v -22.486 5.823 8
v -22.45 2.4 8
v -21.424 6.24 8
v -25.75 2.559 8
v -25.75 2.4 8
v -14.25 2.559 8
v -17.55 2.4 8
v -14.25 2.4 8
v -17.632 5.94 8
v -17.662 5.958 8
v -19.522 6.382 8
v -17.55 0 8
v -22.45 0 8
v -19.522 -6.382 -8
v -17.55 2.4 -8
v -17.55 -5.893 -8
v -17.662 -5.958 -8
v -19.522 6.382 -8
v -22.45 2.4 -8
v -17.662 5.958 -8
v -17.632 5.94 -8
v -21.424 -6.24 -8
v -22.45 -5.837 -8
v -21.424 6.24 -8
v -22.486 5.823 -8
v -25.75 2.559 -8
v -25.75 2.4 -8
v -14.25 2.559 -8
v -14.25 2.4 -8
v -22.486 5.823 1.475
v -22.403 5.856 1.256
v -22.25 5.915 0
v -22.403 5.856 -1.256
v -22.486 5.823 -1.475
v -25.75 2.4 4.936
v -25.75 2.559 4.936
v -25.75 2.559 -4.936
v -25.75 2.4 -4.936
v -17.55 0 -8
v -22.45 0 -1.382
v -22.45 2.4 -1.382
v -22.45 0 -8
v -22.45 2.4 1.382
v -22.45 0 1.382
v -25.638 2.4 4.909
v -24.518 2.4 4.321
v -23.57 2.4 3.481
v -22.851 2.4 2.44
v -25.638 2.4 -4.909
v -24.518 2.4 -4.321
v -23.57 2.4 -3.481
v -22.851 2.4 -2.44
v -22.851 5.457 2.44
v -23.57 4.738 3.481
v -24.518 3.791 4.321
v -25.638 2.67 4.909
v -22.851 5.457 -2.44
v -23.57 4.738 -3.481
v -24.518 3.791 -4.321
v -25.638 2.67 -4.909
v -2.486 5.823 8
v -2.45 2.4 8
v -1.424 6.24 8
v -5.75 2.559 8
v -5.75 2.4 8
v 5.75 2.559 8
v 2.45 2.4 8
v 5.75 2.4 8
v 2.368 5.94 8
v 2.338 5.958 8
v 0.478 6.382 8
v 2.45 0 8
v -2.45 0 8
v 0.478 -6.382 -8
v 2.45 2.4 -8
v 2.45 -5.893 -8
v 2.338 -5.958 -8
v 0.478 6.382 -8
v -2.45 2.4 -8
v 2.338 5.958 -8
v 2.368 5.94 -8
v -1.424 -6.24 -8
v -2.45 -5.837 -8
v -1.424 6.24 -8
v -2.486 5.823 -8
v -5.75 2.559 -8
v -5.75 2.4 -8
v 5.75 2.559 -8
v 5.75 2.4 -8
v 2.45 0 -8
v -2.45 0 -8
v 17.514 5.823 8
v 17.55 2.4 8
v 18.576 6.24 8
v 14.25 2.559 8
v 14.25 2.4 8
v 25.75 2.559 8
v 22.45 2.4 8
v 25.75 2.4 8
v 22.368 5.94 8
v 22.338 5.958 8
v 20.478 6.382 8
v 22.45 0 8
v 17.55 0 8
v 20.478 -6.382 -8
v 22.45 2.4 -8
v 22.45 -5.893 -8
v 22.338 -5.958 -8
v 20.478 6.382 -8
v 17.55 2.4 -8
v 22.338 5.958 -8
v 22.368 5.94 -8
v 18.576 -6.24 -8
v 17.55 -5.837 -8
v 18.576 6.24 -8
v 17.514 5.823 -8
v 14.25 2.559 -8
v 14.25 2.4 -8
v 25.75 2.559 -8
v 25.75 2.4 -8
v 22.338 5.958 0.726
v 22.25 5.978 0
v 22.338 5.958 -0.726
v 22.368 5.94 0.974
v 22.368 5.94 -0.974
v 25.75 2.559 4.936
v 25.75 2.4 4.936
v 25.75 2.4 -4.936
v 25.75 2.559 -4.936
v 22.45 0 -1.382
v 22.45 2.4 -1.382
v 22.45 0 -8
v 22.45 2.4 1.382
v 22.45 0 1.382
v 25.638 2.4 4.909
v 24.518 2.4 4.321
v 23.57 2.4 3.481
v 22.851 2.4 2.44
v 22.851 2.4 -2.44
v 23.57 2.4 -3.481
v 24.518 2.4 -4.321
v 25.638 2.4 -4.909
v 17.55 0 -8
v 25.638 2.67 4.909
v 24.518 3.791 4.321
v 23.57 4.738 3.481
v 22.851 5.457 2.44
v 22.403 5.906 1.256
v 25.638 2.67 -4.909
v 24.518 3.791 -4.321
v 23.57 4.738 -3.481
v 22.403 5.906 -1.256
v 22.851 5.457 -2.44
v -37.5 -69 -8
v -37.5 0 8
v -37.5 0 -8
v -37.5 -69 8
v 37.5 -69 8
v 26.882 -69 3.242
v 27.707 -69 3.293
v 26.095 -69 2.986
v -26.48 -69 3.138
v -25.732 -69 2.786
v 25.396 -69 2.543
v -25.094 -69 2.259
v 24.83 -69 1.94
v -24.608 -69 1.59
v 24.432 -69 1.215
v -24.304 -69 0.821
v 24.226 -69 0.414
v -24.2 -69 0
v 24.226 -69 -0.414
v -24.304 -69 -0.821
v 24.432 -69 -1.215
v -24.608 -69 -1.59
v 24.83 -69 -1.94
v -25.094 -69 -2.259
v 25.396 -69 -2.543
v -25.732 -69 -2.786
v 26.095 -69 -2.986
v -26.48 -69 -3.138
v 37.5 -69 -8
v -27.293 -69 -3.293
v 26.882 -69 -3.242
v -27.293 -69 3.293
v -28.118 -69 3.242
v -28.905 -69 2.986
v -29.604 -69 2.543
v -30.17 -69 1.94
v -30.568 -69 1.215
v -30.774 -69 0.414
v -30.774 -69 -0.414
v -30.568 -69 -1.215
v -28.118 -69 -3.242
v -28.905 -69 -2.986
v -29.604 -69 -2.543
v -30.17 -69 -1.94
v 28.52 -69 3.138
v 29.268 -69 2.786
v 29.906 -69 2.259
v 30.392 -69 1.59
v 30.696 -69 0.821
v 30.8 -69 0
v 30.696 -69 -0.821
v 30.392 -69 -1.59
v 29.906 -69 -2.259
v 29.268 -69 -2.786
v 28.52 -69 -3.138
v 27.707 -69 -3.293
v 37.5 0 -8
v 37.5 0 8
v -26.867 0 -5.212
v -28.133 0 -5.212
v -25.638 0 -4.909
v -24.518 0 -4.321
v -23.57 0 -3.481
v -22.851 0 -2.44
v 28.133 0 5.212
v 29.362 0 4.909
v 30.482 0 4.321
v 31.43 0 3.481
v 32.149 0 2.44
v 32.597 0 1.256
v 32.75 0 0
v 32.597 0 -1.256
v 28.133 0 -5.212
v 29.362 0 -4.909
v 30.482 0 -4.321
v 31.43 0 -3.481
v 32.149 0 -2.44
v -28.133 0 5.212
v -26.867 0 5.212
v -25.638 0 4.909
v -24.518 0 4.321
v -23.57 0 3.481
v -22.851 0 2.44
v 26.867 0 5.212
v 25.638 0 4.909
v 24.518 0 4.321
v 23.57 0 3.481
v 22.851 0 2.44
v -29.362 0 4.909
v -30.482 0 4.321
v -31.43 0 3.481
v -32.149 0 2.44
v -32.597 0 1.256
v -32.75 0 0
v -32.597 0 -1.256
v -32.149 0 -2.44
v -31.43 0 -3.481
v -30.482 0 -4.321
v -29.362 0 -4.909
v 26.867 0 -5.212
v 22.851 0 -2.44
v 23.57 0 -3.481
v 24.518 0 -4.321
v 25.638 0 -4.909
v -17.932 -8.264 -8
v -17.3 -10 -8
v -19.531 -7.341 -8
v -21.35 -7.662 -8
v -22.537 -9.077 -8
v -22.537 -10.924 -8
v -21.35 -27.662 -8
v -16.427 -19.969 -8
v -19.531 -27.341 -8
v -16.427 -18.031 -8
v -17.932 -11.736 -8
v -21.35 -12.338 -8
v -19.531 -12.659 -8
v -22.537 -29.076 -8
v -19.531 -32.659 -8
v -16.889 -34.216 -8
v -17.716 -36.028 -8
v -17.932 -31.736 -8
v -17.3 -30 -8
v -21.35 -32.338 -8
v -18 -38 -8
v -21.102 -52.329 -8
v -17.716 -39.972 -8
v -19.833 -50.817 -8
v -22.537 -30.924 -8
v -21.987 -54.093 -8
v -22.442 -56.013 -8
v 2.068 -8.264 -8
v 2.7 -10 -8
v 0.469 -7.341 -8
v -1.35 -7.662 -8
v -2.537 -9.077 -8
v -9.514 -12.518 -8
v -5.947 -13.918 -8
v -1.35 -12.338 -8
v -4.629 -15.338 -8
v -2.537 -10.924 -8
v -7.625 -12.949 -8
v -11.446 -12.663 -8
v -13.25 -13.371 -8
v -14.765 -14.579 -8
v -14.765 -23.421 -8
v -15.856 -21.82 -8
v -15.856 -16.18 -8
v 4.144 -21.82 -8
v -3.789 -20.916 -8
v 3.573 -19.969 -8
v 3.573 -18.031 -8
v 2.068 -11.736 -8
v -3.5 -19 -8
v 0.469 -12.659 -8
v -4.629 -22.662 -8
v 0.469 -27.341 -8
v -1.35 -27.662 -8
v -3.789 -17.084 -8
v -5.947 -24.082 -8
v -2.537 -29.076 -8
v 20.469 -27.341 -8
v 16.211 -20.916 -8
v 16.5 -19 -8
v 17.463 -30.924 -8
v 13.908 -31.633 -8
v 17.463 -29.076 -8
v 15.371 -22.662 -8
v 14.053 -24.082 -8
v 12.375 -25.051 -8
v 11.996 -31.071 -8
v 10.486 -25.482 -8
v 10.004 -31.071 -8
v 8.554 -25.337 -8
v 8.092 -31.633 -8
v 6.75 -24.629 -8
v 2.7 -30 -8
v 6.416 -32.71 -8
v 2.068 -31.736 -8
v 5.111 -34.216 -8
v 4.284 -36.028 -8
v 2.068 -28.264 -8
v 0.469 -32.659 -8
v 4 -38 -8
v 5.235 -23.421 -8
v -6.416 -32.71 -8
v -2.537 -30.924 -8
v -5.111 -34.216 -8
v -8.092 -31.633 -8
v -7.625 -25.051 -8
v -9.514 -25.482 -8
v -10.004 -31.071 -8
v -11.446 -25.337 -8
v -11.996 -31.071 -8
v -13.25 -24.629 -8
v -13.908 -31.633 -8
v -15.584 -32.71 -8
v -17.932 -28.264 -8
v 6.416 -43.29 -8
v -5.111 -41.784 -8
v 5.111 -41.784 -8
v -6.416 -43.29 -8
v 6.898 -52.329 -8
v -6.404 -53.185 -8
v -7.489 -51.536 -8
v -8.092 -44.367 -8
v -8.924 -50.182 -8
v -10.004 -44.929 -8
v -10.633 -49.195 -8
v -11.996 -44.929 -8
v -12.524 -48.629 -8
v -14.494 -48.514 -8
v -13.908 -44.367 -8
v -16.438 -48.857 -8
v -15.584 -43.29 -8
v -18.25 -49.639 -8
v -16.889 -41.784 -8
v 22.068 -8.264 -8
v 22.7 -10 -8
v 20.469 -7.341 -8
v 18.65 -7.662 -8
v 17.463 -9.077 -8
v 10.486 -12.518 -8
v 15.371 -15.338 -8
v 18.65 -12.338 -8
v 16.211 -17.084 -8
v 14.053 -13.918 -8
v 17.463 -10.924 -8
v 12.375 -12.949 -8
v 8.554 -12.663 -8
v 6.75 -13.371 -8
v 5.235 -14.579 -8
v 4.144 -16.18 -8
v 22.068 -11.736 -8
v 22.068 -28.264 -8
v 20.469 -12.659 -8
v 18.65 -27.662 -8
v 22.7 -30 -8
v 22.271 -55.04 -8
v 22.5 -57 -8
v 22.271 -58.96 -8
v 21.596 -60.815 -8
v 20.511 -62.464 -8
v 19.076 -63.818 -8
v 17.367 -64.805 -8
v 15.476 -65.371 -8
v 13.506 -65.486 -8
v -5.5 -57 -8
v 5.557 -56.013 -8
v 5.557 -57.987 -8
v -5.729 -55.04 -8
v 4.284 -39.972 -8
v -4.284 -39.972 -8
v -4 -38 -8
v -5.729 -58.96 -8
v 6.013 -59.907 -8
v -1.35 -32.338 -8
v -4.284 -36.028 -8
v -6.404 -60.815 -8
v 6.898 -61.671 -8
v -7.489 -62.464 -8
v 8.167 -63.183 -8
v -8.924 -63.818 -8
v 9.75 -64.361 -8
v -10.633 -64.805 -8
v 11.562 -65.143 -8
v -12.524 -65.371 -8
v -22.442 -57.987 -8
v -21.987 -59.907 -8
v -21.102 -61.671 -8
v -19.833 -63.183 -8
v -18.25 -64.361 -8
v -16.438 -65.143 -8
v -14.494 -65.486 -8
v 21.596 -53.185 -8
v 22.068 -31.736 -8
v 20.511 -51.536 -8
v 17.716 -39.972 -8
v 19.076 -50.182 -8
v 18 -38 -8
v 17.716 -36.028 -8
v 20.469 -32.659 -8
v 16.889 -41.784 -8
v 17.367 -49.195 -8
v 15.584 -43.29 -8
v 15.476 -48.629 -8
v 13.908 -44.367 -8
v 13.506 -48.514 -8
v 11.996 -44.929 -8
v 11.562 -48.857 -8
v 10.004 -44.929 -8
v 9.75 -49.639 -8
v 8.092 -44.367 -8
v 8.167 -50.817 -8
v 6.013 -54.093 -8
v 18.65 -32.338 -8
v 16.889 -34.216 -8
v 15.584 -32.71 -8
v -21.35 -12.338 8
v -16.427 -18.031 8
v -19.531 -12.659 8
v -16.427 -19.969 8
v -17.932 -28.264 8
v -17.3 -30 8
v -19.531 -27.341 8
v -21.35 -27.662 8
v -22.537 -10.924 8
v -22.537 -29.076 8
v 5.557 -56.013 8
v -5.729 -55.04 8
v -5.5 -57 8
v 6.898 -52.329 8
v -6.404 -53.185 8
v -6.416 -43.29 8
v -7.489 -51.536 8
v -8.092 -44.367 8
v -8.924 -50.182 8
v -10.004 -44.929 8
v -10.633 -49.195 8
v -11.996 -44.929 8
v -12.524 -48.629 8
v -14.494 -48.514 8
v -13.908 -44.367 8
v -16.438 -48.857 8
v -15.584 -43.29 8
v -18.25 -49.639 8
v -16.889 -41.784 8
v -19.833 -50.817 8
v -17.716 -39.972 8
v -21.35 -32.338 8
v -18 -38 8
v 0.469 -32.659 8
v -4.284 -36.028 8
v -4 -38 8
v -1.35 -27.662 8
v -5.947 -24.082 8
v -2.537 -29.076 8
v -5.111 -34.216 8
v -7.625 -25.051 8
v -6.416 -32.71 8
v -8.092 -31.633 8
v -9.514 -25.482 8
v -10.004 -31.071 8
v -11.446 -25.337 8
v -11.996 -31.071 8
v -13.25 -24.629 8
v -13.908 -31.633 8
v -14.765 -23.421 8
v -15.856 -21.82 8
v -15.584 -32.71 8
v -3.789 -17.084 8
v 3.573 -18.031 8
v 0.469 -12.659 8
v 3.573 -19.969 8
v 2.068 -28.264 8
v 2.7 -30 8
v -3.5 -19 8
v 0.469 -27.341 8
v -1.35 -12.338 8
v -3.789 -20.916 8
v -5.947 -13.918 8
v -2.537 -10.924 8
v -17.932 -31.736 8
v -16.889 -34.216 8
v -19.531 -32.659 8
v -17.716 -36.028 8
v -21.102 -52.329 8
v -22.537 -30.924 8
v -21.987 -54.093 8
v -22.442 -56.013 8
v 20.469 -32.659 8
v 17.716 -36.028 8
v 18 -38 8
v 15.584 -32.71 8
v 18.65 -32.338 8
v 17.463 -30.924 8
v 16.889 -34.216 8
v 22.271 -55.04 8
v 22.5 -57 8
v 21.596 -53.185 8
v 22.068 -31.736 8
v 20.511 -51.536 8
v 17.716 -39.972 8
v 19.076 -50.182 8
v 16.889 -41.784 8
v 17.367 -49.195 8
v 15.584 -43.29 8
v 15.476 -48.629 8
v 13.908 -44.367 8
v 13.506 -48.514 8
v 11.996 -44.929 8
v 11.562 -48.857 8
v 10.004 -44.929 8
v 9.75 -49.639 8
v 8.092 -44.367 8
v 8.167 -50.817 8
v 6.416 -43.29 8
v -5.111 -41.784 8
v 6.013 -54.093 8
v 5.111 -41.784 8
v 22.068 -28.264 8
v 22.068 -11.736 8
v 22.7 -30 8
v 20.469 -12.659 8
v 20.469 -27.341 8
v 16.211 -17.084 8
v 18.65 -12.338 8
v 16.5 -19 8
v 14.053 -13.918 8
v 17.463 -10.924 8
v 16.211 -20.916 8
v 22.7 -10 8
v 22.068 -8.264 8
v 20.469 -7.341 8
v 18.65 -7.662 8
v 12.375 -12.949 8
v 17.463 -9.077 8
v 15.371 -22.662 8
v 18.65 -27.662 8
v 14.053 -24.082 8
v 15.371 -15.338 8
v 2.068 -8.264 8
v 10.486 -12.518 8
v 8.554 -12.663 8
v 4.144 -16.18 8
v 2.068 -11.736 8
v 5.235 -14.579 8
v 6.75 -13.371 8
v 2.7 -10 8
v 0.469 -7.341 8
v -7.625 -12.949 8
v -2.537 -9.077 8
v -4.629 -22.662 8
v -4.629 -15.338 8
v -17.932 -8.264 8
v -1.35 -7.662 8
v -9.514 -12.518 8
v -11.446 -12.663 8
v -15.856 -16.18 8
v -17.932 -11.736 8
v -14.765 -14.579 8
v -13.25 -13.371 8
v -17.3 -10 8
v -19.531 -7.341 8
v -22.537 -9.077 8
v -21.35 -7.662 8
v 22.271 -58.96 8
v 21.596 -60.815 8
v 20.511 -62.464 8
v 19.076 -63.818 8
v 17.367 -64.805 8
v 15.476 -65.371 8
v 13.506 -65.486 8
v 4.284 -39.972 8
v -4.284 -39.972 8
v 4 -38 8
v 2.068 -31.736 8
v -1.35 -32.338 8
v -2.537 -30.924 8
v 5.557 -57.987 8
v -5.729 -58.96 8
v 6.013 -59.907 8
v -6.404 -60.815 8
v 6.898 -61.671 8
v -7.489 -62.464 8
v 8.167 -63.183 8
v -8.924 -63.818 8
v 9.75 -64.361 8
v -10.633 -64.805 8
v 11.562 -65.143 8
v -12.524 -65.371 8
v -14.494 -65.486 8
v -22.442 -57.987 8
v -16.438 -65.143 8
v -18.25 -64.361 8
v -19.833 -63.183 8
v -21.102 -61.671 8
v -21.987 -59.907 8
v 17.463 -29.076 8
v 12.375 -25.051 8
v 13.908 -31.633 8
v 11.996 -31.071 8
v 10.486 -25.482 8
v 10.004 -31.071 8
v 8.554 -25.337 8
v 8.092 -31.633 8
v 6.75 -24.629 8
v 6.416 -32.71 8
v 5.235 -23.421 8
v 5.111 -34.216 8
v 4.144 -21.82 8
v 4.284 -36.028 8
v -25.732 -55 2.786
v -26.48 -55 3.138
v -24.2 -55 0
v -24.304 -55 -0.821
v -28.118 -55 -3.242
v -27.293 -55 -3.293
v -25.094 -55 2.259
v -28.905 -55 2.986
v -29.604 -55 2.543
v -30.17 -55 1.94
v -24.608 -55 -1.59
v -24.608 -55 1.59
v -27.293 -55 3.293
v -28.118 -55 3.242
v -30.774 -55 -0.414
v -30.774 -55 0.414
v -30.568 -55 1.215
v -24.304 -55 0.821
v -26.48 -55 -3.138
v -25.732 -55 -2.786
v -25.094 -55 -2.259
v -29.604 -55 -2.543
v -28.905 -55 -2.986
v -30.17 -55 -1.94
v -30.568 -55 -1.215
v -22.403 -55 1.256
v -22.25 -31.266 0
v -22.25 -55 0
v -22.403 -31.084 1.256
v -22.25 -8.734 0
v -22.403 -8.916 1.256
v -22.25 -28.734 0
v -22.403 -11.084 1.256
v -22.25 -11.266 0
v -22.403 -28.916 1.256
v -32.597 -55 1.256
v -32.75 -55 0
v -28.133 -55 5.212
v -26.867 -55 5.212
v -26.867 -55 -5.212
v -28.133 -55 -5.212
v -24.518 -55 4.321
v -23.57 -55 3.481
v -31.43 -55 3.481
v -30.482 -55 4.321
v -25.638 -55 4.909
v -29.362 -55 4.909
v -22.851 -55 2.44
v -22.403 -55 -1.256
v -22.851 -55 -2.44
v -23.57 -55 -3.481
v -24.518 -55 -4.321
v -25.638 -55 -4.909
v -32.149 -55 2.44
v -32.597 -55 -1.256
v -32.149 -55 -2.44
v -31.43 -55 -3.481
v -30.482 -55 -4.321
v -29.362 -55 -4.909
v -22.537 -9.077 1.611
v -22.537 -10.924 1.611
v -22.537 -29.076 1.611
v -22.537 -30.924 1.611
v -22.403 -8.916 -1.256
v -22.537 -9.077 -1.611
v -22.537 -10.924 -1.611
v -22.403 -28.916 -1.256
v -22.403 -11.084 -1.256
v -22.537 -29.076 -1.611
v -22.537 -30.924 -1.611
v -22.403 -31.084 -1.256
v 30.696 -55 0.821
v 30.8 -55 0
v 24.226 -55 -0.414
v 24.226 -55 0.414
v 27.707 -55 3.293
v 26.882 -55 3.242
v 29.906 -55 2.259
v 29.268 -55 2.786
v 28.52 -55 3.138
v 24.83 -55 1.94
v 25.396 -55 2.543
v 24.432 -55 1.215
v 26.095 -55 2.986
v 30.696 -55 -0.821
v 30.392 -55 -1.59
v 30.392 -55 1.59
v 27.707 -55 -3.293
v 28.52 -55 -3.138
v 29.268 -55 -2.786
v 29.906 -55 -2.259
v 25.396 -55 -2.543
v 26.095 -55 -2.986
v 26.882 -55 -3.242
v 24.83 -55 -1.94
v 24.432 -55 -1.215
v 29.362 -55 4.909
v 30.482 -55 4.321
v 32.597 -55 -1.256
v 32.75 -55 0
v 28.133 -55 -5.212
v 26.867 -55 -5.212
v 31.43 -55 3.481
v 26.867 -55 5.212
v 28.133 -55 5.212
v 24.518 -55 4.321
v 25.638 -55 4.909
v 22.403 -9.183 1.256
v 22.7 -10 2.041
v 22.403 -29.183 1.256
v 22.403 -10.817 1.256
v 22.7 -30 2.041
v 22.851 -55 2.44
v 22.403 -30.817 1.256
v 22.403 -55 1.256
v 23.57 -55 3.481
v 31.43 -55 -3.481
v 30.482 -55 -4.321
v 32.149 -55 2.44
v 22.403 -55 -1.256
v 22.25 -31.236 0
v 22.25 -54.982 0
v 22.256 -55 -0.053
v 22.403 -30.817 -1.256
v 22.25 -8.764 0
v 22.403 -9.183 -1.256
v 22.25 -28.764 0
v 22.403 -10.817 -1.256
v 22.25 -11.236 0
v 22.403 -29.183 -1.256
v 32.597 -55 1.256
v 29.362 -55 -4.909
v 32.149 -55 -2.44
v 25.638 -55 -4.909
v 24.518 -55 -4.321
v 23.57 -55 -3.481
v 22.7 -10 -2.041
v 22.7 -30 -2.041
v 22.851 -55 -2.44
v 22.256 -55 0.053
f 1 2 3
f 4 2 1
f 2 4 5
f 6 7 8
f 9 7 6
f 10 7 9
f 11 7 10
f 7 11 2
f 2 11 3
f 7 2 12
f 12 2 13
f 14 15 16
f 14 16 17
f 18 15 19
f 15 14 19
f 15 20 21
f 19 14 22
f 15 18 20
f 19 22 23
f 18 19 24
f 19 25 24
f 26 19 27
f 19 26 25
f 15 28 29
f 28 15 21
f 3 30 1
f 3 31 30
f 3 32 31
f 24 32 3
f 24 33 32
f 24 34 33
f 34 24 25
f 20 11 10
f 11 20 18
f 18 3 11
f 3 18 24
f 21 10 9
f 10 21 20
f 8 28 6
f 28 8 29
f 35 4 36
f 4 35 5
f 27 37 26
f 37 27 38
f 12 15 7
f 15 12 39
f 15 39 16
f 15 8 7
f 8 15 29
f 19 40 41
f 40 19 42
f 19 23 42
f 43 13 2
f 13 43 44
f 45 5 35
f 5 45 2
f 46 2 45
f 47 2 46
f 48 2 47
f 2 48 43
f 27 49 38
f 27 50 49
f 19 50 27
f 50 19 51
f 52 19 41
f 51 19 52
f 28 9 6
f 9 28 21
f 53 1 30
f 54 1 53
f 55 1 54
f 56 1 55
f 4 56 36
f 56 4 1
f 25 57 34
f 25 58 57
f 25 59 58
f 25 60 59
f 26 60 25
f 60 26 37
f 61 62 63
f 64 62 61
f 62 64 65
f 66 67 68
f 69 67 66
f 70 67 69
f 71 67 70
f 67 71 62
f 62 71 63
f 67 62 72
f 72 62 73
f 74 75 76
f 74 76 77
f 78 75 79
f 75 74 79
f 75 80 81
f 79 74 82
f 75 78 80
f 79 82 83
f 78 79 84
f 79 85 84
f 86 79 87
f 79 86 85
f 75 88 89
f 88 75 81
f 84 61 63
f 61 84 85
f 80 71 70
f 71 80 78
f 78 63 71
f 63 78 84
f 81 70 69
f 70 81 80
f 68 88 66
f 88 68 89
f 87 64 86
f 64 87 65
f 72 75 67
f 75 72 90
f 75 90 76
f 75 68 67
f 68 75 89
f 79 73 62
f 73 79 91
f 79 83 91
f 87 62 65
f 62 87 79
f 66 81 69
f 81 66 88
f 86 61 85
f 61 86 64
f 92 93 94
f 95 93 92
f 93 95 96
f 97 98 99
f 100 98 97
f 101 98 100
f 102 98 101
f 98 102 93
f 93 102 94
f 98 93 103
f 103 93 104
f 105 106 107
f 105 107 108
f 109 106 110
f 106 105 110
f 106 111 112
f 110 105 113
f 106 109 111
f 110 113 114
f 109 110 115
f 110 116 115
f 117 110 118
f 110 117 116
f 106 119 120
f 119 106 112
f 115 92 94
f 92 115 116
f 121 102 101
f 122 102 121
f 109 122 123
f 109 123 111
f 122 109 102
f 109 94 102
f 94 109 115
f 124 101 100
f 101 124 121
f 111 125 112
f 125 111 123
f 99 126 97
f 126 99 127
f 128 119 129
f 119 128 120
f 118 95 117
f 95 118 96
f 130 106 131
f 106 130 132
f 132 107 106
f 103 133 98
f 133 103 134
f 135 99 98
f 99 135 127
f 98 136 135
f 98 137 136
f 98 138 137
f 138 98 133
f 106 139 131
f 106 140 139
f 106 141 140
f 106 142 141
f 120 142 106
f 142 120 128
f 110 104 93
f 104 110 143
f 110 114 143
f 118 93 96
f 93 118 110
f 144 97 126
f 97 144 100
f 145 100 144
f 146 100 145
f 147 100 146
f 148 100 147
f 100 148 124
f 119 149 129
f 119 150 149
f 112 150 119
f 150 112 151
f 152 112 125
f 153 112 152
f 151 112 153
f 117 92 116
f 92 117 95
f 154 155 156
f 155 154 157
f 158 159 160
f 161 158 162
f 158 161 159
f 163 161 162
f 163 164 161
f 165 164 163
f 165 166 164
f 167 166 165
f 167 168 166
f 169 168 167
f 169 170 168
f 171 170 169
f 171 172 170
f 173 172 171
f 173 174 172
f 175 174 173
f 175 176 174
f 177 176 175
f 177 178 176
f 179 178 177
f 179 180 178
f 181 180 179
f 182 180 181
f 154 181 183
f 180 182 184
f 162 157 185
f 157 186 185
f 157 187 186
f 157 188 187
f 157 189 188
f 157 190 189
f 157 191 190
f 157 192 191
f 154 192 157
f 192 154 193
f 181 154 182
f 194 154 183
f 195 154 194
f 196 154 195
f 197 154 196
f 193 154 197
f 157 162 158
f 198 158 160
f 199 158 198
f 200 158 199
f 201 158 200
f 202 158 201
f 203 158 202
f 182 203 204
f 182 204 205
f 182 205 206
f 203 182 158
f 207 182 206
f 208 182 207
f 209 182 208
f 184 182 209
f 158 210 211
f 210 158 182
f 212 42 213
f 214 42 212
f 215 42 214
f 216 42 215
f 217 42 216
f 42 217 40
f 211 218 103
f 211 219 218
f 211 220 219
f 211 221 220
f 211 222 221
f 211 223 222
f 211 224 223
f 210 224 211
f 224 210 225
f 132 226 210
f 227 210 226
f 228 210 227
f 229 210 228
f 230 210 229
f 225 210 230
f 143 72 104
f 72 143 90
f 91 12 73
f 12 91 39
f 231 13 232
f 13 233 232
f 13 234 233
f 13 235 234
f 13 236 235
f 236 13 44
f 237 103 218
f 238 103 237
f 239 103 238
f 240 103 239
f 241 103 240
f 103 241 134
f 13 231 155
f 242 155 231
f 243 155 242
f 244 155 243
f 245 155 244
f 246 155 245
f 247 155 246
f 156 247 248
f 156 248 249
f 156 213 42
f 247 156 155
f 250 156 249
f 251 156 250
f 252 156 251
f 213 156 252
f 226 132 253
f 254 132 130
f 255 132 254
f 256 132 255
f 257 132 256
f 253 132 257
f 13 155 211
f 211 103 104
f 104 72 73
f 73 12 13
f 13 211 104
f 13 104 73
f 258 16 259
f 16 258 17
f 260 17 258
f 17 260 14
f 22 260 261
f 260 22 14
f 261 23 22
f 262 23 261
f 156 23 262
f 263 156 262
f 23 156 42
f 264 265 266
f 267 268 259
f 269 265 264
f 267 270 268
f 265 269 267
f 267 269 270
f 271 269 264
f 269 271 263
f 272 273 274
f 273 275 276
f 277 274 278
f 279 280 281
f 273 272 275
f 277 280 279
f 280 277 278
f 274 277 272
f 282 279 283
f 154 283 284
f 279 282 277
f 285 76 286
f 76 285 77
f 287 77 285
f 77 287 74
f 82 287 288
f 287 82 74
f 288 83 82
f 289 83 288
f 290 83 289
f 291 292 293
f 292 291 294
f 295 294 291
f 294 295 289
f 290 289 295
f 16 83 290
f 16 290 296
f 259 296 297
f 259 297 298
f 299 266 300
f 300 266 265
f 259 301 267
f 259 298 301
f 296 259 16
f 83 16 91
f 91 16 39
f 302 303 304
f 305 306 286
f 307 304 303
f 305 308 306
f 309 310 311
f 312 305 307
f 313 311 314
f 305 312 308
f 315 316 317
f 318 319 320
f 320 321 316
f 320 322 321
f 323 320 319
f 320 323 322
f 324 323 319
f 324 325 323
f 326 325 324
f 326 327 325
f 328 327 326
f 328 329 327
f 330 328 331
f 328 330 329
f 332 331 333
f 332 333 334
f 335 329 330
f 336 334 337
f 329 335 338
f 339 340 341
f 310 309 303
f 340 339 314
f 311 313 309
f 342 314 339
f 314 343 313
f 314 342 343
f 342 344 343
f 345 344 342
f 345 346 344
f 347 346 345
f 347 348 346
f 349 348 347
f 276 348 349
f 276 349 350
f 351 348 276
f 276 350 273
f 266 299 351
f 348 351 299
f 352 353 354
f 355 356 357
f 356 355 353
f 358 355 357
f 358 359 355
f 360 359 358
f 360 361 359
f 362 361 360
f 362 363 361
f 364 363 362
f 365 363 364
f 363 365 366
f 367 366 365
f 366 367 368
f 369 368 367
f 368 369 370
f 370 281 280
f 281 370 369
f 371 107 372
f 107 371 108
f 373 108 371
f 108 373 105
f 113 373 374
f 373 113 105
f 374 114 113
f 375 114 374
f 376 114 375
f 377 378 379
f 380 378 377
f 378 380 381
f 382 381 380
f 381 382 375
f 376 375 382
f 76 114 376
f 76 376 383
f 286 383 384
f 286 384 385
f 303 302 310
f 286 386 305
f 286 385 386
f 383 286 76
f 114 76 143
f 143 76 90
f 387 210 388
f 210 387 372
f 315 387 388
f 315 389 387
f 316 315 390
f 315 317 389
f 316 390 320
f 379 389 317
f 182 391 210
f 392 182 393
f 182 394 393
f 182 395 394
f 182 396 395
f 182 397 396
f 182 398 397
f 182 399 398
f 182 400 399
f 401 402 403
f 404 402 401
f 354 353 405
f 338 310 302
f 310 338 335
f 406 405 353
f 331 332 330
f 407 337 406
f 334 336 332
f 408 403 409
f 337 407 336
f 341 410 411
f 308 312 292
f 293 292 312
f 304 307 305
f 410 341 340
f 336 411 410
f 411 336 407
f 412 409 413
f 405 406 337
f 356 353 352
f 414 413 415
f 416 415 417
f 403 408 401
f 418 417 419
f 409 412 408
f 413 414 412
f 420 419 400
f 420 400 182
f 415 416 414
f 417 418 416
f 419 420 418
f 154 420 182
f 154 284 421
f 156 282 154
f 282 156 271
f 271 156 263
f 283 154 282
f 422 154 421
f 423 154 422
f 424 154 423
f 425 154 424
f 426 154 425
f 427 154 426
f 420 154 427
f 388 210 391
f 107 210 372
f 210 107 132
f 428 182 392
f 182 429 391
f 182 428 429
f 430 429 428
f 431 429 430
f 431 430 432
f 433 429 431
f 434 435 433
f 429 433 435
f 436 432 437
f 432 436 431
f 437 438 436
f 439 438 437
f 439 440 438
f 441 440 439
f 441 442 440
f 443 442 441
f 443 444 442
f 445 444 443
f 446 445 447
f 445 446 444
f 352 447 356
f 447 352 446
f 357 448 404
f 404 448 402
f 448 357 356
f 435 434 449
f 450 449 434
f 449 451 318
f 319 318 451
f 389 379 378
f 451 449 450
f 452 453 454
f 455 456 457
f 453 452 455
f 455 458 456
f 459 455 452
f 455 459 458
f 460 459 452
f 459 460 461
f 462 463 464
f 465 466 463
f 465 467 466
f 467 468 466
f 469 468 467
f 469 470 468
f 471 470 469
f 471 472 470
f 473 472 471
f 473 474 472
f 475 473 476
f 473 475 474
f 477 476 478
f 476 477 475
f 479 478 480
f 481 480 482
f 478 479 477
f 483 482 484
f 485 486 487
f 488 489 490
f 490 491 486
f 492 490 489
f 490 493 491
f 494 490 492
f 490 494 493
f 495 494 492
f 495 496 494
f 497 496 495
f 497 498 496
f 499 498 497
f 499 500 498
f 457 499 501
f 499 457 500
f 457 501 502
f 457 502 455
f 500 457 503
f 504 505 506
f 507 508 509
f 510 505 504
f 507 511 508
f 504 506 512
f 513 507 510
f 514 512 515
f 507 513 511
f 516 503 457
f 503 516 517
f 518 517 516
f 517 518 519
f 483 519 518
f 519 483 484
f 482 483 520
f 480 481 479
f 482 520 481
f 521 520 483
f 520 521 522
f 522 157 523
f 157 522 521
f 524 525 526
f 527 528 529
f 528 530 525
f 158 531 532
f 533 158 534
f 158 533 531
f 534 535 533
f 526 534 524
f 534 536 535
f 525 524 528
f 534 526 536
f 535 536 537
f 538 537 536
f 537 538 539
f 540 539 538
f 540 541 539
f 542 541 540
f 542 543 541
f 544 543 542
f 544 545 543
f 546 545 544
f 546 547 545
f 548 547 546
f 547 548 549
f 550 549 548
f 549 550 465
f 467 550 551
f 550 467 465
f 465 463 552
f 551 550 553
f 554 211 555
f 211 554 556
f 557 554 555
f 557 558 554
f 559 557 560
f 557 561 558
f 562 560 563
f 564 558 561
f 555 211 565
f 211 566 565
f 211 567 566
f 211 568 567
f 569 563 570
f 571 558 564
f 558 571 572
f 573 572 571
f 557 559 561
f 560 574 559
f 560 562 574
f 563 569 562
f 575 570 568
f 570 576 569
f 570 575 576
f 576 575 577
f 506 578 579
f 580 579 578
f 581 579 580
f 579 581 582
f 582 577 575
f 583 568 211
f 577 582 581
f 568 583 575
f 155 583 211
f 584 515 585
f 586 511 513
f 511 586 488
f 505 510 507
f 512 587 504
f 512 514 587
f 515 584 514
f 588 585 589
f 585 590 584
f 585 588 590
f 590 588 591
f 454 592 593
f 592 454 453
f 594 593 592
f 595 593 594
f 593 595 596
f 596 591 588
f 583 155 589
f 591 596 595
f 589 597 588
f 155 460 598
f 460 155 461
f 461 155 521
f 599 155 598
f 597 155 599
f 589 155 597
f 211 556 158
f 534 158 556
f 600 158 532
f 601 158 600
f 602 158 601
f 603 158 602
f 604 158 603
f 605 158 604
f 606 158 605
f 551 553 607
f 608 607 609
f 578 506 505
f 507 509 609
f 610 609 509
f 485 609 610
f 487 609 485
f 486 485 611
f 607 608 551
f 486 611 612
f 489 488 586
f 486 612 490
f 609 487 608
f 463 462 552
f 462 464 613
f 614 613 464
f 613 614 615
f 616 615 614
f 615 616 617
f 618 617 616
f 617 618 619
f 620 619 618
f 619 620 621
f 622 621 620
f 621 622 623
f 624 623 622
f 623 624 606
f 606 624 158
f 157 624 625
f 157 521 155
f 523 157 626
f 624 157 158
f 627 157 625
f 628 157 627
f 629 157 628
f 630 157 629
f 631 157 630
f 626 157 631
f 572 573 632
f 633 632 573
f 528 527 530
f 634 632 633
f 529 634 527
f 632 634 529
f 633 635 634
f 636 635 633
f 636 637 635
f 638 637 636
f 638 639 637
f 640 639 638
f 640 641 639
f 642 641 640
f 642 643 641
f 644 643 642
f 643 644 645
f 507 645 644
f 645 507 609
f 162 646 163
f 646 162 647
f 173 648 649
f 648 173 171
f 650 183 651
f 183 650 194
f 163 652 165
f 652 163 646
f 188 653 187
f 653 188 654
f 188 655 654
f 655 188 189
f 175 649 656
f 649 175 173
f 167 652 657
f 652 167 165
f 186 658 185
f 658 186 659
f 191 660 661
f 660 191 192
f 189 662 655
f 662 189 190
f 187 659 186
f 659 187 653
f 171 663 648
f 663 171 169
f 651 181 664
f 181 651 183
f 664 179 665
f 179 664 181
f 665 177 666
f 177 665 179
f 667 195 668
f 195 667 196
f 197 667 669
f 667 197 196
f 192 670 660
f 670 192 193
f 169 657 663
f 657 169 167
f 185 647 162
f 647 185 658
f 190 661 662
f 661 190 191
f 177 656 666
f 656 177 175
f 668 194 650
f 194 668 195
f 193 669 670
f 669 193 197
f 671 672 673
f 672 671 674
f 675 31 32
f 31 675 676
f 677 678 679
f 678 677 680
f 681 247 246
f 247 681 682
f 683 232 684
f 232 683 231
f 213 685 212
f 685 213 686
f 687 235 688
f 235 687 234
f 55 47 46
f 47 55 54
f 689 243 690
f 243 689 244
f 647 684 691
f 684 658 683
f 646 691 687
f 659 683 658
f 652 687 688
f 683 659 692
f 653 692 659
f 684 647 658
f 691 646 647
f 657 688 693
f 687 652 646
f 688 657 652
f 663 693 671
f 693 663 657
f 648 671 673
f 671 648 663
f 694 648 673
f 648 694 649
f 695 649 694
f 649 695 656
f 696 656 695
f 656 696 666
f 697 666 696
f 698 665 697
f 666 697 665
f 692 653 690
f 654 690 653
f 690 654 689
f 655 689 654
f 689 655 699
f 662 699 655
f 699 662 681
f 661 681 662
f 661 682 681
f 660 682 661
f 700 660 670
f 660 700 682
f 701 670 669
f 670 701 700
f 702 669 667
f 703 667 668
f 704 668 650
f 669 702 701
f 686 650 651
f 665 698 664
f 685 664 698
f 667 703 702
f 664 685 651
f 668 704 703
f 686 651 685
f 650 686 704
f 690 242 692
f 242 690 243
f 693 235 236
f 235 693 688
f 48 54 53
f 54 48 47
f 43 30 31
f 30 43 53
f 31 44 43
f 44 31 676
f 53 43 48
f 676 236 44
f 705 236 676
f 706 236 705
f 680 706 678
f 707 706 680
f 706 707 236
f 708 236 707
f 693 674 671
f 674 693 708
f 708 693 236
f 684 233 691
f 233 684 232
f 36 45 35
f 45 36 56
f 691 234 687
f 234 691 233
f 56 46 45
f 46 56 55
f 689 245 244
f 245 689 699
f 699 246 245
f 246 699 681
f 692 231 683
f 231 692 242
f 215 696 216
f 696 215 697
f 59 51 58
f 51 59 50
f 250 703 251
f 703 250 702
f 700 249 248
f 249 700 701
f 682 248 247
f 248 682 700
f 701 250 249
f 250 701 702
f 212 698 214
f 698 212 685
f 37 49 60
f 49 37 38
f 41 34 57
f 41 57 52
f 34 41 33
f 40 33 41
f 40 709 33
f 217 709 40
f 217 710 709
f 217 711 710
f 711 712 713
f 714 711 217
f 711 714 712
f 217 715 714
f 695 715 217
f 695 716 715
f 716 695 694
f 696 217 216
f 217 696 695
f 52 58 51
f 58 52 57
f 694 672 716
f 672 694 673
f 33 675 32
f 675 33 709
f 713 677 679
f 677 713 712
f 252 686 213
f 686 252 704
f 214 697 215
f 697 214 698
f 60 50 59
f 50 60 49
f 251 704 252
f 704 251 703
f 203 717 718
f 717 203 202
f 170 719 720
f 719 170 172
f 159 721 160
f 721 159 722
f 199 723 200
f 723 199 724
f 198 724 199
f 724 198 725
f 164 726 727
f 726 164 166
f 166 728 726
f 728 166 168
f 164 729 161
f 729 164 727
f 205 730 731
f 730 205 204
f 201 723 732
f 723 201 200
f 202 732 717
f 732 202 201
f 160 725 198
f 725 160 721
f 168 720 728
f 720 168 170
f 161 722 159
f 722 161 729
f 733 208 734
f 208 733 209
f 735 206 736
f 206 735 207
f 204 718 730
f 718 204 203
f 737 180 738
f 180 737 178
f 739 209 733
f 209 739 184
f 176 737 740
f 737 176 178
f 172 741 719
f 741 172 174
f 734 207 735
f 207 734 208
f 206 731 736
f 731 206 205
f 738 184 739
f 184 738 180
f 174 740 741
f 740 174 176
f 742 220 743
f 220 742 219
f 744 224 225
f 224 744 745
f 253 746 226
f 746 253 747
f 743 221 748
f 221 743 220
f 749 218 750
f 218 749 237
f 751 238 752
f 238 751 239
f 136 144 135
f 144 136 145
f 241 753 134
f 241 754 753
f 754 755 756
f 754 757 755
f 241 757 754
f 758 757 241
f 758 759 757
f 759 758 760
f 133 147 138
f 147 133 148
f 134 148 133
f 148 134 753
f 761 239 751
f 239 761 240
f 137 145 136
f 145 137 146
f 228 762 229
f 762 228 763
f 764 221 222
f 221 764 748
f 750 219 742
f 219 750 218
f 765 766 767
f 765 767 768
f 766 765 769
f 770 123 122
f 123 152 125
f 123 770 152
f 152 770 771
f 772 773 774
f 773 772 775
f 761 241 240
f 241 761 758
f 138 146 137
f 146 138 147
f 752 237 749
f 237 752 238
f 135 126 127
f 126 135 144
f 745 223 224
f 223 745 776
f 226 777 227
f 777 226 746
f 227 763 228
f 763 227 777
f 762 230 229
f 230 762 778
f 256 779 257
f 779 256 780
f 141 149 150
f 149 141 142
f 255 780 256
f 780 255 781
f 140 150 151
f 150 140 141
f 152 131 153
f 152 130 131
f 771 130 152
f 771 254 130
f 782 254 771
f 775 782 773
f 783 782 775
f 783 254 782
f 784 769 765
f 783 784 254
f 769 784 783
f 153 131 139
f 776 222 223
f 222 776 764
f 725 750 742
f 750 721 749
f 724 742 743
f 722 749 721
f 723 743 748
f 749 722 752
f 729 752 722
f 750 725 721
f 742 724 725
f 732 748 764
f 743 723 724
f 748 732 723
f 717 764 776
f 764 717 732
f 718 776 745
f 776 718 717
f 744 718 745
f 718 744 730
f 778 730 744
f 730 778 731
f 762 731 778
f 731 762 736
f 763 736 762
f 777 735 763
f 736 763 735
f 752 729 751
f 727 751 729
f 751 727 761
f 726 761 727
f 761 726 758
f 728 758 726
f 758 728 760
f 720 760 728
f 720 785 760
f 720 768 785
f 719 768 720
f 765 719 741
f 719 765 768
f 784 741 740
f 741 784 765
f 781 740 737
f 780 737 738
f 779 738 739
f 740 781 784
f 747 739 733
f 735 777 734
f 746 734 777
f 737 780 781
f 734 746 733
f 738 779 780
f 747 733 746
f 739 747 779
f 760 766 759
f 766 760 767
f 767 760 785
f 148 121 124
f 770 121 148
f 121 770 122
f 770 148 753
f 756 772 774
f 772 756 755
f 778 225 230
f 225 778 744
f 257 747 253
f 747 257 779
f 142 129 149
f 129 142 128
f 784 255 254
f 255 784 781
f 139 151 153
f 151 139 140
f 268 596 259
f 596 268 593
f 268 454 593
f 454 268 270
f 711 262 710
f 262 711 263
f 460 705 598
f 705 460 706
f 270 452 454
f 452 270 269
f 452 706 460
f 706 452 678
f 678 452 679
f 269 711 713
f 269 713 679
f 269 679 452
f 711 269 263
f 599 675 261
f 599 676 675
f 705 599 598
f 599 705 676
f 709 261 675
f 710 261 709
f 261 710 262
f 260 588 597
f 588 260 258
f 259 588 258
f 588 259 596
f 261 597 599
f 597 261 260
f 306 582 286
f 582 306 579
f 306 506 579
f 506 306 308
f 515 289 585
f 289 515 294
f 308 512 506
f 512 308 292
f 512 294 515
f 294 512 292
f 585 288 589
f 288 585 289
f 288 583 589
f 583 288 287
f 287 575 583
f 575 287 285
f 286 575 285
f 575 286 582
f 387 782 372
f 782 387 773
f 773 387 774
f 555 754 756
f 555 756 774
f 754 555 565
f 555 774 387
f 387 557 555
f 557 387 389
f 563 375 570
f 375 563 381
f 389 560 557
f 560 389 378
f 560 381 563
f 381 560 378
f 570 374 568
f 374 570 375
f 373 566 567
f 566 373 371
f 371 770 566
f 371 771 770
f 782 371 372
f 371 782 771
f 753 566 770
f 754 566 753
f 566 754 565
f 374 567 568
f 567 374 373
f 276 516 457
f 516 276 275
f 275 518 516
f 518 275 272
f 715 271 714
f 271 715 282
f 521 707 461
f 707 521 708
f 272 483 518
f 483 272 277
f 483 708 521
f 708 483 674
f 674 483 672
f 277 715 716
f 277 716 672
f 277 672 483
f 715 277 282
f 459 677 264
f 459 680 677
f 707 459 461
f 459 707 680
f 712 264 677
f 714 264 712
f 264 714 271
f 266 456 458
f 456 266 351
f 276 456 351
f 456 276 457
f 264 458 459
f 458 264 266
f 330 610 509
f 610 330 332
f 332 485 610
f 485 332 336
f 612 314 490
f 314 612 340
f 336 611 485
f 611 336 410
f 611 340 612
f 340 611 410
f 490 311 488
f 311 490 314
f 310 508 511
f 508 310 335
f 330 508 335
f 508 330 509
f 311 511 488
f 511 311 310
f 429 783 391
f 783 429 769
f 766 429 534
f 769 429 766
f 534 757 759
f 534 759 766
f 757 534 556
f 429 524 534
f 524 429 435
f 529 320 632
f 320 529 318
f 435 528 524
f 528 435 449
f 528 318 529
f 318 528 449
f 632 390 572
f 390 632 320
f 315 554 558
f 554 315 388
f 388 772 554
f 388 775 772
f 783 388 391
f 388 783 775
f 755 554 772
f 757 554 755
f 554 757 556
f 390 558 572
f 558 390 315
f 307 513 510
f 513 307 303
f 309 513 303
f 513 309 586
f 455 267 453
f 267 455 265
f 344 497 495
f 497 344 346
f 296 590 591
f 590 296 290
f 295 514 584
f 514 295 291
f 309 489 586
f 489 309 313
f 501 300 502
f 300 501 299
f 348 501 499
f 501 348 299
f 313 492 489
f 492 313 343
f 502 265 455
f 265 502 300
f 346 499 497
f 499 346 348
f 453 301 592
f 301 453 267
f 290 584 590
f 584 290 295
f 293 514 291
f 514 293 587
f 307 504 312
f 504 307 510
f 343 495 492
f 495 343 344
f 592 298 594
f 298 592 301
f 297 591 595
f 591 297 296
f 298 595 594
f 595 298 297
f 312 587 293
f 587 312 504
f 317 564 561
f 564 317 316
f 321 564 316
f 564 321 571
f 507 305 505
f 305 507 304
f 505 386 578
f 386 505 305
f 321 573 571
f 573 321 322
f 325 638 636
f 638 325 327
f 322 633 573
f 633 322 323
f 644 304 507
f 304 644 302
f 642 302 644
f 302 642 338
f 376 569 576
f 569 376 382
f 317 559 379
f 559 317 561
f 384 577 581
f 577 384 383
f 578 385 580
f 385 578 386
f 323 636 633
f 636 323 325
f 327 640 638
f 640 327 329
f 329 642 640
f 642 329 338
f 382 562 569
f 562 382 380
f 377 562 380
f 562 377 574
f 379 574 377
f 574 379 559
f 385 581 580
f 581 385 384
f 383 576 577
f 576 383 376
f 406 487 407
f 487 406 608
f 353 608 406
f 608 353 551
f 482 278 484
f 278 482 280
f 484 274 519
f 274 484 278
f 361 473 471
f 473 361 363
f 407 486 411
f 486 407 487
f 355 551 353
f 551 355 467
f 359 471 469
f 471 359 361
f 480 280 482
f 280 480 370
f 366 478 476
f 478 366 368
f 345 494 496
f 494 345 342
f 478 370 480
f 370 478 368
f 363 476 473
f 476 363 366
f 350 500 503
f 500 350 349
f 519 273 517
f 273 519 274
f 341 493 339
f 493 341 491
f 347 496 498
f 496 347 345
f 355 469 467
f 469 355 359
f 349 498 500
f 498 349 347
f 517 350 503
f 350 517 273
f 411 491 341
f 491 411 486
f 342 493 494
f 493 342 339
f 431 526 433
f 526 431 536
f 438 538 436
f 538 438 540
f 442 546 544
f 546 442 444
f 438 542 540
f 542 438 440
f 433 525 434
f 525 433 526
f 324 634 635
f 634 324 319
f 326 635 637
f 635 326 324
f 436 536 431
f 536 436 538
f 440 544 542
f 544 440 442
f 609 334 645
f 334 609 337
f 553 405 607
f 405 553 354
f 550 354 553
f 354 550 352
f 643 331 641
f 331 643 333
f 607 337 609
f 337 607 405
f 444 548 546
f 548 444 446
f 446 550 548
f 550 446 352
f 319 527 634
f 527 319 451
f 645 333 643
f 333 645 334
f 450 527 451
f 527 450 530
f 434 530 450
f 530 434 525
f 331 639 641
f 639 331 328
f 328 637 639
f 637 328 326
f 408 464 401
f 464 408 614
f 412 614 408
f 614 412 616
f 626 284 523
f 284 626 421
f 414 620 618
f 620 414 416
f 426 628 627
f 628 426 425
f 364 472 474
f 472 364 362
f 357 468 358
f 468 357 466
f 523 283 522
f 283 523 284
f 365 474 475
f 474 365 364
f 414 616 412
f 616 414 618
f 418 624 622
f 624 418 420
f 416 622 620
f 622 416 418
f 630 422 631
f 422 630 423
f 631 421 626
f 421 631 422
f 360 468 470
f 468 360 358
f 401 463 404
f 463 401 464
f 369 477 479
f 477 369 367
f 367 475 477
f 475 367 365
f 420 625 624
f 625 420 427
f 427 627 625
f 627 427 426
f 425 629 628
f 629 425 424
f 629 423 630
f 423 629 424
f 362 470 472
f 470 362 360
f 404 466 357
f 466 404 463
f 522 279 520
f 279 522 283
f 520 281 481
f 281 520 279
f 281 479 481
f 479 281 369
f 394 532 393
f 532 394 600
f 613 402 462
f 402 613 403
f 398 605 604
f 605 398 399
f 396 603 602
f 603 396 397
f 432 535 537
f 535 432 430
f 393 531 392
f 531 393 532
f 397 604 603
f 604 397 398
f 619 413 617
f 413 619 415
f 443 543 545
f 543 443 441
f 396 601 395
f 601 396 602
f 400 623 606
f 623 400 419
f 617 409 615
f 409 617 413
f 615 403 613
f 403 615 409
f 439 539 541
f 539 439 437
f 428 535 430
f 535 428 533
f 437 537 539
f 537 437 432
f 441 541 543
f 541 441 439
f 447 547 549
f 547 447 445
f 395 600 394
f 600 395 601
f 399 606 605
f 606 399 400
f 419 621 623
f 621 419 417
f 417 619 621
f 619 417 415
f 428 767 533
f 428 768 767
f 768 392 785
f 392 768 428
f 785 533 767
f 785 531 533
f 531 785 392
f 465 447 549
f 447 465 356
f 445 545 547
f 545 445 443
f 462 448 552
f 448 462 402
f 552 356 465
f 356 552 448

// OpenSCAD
/**
 * SpindleMountSpacer
 * 
 * Created by Diego Viejo
 * 
 * 02/Dec/2015
 * 
 */

height = 69;
width = 75;
length = 16;//33;
rodBoltDistance = 55;
slotBoltDistance = 40;

separation = -0.3; //set this to positive value if you are going to print the piece vertically

//seta's parameter
legLength = length;

*seta();

rotate([90,0,0]) //comment this to print it vertically
difference()
{
    union()
    {
        translate([-width/2, -length/2, 0]) cube([width, length, height]);
        rotate([180,0, 0]) 
            for(col=[-20, 0, 20])
                translate([col, -length/2, 0]) seta();
    }
    
    for(i=[-1,1])
    {
        *translate([i*slotBoltDistance/2, 5, -1]) cylinder(d=5.5, h=height+2, $fn=25);
        *translate([i*slotBoltDistance/2, 5, 7]) cylinder(d=8, h=height+2, $fn=25);
        
        translate([i*rodBoltDistance/2, 0, height-13-7+separation]) cylinder(d=6.6, h=height, $fn=25);
        translate([i*rodBoltDistance/2, 0, -1-6]) cylinder(d=10.5, h=height-13+6, $fn=26);
    }
    
    for(fila=[10, 30])
        for(col=[-20, 0, 20])
            translate([col, length/2+1, fila]) rotate([90, 0, 0]) cylinder(d=5.4, h=length+2);
        
    for(fila = [1:3])
        for(col=[-1, 1])
            translate([col*10+col*(fila-1)*(fila-1), length/2+1, 19*fila]) rotate([90, 0, 0]) cylinder(d=13+(fila-1)*(fila-1), h=length+2);
}

module seta()
rotate([-90, 0, 0]) 
difference()
{
    cylinder(r=6.3, h=legLength);

    
    translate([5.75, -15/2, -1]) cube([5, 15, legLength+2]);
    translate([-5-5.75, -15/2, -1]) cube([5, 15, legLength+2]);
    
    translate([4.9/2, -2-0.4, -1]) cube([5, 10, legLength+2]);  //-0.4 is substracted to 
    translate([-5-4.9/2, -2-0.4, -1]) cube([5, 10, legLength+2]);//give room

    rotate(45)
        translate([-15/2, -15-5.875, -1]) cube([15, 15, legLength+2]);
    rotate(-45)
        translate([-15/2, -15-5.875, -1]) cube([15, 15, legLength+2]);
}
